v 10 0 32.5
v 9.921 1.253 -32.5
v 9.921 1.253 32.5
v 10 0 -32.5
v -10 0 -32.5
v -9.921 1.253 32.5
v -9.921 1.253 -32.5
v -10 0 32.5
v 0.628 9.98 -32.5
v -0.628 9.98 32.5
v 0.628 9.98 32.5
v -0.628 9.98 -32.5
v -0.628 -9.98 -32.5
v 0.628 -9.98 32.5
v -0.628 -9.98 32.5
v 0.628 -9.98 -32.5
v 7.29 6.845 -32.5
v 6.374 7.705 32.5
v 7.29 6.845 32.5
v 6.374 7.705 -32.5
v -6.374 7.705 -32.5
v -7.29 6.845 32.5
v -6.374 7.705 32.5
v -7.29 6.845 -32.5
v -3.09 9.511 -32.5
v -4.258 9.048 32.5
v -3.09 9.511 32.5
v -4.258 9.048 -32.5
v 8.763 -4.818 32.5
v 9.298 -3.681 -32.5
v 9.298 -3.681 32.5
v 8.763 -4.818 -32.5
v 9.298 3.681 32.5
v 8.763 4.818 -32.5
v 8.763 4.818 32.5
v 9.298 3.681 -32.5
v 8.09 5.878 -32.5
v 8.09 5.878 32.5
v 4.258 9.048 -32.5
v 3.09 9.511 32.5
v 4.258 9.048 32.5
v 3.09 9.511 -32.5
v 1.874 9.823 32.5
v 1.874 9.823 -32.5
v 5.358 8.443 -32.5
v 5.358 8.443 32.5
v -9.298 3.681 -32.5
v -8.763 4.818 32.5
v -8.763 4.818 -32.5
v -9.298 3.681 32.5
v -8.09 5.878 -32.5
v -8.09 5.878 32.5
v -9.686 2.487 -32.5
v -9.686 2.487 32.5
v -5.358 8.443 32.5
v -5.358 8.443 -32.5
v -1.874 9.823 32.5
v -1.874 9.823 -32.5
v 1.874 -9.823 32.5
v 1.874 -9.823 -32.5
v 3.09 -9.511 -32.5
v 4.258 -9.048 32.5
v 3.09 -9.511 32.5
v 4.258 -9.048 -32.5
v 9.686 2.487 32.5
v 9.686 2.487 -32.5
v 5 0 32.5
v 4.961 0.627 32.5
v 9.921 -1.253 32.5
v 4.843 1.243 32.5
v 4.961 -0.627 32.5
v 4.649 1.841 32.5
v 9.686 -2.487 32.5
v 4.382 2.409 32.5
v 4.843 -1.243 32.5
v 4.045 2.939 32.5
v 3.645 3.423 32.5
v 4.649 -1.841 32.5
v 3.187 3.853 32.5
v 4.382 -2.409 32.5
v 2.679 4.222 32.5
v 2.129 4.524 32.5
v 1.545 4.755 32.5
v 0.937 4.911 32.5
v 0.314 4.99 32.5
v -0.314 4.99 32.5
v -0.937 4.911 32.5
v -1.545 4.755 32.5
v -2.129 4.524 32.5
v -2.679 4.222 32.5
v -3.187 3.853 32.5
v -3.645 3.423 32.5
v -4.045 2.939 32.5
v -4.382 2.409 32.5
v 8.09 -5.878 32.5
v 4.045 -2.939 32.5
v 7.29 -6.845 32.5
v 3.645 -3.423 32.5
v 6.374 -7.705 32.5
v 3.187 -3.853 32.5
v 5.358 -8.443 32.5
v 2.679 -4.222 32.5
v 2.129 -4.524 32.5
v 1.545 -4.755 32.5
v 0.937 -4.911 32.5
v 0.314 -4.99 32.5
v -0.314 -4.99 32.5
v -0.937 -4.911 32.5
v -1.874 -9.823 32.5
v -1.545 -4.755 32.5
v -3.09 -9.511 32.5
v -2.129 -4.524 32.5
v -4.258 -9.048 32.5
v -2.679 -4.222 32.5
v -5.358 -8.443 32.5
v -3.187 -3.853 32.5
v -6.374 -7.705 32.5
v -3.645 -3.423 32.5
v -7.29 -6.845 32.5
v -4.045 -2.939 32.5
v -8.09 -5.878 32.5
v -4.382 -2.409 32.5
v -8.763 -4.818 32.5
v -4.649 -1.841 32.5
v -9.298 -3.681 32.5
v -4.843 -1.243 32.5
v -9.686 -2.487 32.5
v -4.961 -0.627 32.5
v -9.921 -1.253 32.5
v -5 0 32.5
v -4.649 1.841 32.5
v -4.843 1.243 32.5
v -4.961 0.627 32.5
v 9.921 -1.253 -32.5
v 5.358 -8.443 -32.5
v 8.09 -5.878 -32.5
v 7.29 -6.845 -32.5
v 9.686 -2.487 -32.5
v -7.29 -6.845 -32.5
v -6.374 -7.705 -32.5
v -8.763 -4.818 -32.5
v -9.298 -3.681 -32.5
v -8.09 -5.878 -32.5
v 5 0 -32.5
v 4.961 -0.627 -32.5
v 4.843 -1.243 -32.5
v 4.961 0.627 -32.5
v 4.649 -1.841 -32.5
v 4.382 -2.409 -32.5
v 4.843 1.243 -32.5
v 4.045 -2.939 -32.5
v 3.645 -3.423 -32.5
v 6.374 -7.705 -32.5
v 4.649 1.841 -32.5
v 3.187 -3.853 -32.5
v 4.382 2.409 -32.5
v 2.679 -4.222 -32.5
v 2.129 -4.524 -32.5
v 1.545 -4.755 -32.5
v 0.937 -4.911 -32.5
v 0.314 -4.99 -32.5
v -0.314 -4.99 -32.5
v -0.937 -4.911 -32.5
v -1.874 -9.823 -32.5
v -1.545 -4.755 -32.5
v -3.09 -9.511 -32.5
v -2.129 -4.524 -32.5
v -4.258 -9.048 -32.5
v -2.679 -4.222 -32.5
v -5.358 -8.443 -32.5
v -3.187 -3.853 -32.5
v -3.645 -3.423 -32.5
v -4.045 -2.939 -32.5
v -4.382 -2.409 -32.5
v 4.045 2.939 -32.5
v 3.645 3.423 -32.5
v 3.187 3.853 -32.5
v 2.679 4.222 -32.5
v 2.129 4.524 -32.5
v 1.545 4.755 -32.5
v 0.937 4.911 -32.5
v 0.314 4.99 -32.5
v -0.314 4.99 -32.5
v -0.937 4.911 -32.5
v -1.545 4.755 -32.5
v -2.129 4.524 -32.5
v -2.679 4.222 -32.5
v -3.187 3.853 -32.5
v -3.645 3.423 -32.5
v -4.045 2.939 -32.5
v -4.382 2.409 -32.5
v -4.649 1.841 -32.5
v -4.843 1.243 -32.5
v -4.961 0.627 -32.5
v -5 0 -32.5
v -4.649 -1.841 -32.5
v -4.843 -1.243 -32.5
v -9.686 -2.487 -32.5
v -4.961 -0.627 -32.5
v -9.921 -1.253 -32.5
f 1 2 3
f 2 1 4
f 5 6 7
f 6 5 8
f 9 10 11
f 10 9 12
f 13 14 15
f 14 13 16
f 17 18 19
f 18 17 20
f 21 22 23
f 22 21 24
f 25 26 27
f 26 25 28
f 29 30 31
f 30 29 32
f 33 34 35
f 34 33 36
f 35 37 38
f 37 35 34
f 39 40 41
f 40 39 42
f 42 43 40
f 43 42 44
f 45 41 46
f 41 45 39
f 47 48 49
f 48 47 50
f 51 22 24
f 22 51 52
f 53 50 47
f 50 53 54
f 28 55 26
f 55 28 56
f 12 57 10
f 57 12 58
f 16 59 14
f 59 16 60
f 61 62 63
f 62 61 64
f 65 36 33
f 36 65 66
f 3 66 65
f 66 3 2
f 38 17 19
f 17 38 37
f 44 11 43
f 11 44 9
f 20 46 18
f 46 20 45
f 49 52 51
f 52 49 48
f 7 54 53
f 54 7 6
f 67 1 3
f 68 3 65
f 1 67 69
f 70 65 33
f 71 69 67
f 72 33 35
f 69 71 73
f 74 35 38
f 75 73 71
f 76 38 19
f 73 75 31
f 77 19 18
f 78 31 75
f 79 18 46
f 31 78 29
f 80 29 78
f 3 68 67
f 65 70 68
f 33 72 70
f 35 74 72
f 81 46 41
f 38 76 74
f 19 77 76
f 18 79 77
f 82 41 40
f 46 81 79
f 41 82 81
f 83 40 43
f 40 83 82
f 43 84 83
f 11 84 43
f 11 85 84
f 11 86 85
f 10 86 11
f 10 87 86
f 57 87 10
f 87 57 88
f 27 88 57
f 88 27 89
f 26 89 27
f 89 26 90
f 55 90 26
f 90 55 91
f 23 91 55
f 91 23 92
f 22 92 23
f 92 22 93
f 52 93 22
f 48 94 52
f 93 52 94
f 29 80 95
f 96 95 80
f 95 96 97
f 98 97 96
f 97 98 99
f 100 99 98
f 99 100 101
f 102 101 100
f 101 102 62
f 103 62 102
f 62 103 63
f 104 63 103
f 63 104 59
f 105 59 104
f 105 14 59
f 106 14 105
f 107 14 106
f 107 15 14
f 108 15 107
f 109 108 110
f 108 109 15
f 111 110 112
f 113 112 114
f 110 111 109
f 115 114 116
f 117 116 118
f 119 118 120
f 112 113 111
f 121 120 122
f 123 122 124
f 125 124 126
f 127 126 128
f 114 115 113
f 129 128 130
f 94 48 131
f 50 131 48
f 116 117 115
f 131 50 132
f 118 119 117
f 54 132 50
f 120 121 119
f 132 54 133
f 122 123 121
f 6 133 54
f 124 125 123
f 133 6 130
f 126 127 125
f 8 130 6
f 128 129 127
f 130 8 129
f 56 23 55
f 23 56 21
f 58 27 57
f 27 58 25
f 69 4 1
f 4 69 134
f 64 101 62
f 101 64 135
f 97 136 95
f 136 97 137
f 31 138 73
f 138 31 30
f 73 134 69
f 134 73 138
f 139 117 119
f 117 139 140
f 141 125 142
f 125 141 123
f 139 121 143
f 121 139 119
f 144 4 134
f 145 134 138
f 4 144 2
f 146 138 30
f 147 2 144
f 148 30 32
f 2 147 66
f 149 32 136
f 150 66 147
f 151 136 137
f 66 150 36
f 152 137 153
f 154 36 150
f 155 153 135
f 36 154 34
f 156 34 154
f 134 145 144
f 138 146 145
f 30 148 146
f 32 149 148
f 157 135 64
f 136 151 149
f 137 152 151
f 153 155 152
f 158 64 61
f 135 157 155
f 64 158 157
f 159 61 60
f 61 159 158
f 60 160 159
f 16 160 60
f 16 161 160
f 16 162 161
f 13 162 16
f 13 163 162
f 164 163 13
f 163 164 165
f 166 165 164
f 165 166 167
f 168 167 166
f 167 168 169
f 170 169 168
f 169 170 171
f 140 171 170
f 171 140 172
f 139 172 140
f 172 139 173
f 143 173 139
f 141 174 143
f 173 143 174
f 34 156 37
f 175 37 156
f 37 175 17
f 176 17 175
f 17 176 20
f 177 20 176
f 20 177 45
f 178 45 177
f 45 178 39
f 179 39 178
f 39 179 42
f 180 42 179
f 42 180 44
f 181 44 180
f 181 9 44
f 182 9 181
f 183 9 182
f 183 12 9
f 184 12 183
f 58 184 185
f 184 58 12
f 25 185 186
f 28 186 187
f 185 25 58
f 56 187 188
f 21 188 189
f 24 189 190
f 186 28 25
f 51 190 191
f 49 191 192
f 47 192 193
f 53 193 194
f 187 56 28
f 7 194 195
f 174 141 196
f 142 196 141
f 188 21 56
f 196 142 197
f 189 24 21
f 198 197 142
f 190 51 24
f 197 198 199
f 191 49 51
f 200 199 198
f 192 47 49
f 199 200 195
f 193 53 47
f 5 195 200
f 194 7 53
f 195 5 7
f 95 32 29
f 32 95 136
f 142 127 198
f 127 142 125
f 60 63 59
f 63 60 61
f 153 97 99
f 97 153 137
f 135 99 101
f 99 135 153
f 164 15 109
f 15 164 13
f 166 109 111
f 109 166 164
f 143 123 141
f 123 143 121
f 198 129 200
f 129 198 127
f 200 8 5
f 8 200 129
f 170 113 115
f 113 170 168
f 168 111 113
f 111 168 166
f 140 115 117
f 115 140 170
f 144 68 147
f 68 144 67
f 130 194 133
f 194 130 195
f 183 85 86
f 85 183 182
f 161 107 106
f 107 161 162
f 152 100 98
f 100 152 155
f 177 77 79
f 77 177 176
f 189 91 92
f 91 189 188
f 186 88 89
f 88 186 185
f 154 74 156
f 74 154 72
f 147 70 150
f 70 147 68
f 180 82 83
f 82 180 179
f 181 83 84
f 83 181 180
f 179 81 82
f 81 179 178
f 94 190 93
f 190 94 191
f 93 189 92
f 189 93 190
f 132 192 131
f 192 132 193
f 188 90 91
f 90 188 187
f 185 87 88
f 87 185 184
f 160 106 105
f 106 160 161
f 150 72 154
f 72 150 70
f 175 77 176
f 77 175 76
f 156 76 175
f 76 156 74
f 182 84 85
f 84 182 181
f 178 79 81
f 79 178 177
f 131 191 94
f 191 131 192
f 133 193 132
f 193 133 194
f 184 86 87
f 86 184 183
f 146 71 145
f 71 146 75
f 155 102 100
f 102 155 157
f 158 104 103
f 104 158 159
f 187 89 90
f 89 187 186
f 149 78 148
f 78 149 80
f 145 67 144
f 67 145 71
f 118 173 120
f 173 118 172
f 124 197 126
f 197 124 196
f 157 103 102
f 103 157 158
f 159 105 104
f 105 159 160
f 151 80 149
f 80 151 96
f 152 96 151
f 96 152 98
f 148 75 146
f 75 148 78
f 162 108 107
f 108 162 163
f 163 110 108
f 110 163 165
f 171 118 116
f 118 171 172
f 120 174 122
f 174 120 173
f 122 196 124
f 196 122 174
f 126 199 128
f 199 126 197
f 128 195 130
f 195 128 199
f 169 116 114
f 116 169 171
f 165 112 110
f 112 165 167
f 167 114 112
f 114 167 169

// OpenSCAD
$fn = 50;


difference() {
	union() {
		translate(v = [0, 0, -32.5000000000]) {
			cylinder(h = 65, r = 10.0000000000);
		}
	}
	union() {
		translate(v = [0, 0, -100.0000000000]) {
			cylinder(h = 200, r = 5.0000000000);
		}
	}
}
